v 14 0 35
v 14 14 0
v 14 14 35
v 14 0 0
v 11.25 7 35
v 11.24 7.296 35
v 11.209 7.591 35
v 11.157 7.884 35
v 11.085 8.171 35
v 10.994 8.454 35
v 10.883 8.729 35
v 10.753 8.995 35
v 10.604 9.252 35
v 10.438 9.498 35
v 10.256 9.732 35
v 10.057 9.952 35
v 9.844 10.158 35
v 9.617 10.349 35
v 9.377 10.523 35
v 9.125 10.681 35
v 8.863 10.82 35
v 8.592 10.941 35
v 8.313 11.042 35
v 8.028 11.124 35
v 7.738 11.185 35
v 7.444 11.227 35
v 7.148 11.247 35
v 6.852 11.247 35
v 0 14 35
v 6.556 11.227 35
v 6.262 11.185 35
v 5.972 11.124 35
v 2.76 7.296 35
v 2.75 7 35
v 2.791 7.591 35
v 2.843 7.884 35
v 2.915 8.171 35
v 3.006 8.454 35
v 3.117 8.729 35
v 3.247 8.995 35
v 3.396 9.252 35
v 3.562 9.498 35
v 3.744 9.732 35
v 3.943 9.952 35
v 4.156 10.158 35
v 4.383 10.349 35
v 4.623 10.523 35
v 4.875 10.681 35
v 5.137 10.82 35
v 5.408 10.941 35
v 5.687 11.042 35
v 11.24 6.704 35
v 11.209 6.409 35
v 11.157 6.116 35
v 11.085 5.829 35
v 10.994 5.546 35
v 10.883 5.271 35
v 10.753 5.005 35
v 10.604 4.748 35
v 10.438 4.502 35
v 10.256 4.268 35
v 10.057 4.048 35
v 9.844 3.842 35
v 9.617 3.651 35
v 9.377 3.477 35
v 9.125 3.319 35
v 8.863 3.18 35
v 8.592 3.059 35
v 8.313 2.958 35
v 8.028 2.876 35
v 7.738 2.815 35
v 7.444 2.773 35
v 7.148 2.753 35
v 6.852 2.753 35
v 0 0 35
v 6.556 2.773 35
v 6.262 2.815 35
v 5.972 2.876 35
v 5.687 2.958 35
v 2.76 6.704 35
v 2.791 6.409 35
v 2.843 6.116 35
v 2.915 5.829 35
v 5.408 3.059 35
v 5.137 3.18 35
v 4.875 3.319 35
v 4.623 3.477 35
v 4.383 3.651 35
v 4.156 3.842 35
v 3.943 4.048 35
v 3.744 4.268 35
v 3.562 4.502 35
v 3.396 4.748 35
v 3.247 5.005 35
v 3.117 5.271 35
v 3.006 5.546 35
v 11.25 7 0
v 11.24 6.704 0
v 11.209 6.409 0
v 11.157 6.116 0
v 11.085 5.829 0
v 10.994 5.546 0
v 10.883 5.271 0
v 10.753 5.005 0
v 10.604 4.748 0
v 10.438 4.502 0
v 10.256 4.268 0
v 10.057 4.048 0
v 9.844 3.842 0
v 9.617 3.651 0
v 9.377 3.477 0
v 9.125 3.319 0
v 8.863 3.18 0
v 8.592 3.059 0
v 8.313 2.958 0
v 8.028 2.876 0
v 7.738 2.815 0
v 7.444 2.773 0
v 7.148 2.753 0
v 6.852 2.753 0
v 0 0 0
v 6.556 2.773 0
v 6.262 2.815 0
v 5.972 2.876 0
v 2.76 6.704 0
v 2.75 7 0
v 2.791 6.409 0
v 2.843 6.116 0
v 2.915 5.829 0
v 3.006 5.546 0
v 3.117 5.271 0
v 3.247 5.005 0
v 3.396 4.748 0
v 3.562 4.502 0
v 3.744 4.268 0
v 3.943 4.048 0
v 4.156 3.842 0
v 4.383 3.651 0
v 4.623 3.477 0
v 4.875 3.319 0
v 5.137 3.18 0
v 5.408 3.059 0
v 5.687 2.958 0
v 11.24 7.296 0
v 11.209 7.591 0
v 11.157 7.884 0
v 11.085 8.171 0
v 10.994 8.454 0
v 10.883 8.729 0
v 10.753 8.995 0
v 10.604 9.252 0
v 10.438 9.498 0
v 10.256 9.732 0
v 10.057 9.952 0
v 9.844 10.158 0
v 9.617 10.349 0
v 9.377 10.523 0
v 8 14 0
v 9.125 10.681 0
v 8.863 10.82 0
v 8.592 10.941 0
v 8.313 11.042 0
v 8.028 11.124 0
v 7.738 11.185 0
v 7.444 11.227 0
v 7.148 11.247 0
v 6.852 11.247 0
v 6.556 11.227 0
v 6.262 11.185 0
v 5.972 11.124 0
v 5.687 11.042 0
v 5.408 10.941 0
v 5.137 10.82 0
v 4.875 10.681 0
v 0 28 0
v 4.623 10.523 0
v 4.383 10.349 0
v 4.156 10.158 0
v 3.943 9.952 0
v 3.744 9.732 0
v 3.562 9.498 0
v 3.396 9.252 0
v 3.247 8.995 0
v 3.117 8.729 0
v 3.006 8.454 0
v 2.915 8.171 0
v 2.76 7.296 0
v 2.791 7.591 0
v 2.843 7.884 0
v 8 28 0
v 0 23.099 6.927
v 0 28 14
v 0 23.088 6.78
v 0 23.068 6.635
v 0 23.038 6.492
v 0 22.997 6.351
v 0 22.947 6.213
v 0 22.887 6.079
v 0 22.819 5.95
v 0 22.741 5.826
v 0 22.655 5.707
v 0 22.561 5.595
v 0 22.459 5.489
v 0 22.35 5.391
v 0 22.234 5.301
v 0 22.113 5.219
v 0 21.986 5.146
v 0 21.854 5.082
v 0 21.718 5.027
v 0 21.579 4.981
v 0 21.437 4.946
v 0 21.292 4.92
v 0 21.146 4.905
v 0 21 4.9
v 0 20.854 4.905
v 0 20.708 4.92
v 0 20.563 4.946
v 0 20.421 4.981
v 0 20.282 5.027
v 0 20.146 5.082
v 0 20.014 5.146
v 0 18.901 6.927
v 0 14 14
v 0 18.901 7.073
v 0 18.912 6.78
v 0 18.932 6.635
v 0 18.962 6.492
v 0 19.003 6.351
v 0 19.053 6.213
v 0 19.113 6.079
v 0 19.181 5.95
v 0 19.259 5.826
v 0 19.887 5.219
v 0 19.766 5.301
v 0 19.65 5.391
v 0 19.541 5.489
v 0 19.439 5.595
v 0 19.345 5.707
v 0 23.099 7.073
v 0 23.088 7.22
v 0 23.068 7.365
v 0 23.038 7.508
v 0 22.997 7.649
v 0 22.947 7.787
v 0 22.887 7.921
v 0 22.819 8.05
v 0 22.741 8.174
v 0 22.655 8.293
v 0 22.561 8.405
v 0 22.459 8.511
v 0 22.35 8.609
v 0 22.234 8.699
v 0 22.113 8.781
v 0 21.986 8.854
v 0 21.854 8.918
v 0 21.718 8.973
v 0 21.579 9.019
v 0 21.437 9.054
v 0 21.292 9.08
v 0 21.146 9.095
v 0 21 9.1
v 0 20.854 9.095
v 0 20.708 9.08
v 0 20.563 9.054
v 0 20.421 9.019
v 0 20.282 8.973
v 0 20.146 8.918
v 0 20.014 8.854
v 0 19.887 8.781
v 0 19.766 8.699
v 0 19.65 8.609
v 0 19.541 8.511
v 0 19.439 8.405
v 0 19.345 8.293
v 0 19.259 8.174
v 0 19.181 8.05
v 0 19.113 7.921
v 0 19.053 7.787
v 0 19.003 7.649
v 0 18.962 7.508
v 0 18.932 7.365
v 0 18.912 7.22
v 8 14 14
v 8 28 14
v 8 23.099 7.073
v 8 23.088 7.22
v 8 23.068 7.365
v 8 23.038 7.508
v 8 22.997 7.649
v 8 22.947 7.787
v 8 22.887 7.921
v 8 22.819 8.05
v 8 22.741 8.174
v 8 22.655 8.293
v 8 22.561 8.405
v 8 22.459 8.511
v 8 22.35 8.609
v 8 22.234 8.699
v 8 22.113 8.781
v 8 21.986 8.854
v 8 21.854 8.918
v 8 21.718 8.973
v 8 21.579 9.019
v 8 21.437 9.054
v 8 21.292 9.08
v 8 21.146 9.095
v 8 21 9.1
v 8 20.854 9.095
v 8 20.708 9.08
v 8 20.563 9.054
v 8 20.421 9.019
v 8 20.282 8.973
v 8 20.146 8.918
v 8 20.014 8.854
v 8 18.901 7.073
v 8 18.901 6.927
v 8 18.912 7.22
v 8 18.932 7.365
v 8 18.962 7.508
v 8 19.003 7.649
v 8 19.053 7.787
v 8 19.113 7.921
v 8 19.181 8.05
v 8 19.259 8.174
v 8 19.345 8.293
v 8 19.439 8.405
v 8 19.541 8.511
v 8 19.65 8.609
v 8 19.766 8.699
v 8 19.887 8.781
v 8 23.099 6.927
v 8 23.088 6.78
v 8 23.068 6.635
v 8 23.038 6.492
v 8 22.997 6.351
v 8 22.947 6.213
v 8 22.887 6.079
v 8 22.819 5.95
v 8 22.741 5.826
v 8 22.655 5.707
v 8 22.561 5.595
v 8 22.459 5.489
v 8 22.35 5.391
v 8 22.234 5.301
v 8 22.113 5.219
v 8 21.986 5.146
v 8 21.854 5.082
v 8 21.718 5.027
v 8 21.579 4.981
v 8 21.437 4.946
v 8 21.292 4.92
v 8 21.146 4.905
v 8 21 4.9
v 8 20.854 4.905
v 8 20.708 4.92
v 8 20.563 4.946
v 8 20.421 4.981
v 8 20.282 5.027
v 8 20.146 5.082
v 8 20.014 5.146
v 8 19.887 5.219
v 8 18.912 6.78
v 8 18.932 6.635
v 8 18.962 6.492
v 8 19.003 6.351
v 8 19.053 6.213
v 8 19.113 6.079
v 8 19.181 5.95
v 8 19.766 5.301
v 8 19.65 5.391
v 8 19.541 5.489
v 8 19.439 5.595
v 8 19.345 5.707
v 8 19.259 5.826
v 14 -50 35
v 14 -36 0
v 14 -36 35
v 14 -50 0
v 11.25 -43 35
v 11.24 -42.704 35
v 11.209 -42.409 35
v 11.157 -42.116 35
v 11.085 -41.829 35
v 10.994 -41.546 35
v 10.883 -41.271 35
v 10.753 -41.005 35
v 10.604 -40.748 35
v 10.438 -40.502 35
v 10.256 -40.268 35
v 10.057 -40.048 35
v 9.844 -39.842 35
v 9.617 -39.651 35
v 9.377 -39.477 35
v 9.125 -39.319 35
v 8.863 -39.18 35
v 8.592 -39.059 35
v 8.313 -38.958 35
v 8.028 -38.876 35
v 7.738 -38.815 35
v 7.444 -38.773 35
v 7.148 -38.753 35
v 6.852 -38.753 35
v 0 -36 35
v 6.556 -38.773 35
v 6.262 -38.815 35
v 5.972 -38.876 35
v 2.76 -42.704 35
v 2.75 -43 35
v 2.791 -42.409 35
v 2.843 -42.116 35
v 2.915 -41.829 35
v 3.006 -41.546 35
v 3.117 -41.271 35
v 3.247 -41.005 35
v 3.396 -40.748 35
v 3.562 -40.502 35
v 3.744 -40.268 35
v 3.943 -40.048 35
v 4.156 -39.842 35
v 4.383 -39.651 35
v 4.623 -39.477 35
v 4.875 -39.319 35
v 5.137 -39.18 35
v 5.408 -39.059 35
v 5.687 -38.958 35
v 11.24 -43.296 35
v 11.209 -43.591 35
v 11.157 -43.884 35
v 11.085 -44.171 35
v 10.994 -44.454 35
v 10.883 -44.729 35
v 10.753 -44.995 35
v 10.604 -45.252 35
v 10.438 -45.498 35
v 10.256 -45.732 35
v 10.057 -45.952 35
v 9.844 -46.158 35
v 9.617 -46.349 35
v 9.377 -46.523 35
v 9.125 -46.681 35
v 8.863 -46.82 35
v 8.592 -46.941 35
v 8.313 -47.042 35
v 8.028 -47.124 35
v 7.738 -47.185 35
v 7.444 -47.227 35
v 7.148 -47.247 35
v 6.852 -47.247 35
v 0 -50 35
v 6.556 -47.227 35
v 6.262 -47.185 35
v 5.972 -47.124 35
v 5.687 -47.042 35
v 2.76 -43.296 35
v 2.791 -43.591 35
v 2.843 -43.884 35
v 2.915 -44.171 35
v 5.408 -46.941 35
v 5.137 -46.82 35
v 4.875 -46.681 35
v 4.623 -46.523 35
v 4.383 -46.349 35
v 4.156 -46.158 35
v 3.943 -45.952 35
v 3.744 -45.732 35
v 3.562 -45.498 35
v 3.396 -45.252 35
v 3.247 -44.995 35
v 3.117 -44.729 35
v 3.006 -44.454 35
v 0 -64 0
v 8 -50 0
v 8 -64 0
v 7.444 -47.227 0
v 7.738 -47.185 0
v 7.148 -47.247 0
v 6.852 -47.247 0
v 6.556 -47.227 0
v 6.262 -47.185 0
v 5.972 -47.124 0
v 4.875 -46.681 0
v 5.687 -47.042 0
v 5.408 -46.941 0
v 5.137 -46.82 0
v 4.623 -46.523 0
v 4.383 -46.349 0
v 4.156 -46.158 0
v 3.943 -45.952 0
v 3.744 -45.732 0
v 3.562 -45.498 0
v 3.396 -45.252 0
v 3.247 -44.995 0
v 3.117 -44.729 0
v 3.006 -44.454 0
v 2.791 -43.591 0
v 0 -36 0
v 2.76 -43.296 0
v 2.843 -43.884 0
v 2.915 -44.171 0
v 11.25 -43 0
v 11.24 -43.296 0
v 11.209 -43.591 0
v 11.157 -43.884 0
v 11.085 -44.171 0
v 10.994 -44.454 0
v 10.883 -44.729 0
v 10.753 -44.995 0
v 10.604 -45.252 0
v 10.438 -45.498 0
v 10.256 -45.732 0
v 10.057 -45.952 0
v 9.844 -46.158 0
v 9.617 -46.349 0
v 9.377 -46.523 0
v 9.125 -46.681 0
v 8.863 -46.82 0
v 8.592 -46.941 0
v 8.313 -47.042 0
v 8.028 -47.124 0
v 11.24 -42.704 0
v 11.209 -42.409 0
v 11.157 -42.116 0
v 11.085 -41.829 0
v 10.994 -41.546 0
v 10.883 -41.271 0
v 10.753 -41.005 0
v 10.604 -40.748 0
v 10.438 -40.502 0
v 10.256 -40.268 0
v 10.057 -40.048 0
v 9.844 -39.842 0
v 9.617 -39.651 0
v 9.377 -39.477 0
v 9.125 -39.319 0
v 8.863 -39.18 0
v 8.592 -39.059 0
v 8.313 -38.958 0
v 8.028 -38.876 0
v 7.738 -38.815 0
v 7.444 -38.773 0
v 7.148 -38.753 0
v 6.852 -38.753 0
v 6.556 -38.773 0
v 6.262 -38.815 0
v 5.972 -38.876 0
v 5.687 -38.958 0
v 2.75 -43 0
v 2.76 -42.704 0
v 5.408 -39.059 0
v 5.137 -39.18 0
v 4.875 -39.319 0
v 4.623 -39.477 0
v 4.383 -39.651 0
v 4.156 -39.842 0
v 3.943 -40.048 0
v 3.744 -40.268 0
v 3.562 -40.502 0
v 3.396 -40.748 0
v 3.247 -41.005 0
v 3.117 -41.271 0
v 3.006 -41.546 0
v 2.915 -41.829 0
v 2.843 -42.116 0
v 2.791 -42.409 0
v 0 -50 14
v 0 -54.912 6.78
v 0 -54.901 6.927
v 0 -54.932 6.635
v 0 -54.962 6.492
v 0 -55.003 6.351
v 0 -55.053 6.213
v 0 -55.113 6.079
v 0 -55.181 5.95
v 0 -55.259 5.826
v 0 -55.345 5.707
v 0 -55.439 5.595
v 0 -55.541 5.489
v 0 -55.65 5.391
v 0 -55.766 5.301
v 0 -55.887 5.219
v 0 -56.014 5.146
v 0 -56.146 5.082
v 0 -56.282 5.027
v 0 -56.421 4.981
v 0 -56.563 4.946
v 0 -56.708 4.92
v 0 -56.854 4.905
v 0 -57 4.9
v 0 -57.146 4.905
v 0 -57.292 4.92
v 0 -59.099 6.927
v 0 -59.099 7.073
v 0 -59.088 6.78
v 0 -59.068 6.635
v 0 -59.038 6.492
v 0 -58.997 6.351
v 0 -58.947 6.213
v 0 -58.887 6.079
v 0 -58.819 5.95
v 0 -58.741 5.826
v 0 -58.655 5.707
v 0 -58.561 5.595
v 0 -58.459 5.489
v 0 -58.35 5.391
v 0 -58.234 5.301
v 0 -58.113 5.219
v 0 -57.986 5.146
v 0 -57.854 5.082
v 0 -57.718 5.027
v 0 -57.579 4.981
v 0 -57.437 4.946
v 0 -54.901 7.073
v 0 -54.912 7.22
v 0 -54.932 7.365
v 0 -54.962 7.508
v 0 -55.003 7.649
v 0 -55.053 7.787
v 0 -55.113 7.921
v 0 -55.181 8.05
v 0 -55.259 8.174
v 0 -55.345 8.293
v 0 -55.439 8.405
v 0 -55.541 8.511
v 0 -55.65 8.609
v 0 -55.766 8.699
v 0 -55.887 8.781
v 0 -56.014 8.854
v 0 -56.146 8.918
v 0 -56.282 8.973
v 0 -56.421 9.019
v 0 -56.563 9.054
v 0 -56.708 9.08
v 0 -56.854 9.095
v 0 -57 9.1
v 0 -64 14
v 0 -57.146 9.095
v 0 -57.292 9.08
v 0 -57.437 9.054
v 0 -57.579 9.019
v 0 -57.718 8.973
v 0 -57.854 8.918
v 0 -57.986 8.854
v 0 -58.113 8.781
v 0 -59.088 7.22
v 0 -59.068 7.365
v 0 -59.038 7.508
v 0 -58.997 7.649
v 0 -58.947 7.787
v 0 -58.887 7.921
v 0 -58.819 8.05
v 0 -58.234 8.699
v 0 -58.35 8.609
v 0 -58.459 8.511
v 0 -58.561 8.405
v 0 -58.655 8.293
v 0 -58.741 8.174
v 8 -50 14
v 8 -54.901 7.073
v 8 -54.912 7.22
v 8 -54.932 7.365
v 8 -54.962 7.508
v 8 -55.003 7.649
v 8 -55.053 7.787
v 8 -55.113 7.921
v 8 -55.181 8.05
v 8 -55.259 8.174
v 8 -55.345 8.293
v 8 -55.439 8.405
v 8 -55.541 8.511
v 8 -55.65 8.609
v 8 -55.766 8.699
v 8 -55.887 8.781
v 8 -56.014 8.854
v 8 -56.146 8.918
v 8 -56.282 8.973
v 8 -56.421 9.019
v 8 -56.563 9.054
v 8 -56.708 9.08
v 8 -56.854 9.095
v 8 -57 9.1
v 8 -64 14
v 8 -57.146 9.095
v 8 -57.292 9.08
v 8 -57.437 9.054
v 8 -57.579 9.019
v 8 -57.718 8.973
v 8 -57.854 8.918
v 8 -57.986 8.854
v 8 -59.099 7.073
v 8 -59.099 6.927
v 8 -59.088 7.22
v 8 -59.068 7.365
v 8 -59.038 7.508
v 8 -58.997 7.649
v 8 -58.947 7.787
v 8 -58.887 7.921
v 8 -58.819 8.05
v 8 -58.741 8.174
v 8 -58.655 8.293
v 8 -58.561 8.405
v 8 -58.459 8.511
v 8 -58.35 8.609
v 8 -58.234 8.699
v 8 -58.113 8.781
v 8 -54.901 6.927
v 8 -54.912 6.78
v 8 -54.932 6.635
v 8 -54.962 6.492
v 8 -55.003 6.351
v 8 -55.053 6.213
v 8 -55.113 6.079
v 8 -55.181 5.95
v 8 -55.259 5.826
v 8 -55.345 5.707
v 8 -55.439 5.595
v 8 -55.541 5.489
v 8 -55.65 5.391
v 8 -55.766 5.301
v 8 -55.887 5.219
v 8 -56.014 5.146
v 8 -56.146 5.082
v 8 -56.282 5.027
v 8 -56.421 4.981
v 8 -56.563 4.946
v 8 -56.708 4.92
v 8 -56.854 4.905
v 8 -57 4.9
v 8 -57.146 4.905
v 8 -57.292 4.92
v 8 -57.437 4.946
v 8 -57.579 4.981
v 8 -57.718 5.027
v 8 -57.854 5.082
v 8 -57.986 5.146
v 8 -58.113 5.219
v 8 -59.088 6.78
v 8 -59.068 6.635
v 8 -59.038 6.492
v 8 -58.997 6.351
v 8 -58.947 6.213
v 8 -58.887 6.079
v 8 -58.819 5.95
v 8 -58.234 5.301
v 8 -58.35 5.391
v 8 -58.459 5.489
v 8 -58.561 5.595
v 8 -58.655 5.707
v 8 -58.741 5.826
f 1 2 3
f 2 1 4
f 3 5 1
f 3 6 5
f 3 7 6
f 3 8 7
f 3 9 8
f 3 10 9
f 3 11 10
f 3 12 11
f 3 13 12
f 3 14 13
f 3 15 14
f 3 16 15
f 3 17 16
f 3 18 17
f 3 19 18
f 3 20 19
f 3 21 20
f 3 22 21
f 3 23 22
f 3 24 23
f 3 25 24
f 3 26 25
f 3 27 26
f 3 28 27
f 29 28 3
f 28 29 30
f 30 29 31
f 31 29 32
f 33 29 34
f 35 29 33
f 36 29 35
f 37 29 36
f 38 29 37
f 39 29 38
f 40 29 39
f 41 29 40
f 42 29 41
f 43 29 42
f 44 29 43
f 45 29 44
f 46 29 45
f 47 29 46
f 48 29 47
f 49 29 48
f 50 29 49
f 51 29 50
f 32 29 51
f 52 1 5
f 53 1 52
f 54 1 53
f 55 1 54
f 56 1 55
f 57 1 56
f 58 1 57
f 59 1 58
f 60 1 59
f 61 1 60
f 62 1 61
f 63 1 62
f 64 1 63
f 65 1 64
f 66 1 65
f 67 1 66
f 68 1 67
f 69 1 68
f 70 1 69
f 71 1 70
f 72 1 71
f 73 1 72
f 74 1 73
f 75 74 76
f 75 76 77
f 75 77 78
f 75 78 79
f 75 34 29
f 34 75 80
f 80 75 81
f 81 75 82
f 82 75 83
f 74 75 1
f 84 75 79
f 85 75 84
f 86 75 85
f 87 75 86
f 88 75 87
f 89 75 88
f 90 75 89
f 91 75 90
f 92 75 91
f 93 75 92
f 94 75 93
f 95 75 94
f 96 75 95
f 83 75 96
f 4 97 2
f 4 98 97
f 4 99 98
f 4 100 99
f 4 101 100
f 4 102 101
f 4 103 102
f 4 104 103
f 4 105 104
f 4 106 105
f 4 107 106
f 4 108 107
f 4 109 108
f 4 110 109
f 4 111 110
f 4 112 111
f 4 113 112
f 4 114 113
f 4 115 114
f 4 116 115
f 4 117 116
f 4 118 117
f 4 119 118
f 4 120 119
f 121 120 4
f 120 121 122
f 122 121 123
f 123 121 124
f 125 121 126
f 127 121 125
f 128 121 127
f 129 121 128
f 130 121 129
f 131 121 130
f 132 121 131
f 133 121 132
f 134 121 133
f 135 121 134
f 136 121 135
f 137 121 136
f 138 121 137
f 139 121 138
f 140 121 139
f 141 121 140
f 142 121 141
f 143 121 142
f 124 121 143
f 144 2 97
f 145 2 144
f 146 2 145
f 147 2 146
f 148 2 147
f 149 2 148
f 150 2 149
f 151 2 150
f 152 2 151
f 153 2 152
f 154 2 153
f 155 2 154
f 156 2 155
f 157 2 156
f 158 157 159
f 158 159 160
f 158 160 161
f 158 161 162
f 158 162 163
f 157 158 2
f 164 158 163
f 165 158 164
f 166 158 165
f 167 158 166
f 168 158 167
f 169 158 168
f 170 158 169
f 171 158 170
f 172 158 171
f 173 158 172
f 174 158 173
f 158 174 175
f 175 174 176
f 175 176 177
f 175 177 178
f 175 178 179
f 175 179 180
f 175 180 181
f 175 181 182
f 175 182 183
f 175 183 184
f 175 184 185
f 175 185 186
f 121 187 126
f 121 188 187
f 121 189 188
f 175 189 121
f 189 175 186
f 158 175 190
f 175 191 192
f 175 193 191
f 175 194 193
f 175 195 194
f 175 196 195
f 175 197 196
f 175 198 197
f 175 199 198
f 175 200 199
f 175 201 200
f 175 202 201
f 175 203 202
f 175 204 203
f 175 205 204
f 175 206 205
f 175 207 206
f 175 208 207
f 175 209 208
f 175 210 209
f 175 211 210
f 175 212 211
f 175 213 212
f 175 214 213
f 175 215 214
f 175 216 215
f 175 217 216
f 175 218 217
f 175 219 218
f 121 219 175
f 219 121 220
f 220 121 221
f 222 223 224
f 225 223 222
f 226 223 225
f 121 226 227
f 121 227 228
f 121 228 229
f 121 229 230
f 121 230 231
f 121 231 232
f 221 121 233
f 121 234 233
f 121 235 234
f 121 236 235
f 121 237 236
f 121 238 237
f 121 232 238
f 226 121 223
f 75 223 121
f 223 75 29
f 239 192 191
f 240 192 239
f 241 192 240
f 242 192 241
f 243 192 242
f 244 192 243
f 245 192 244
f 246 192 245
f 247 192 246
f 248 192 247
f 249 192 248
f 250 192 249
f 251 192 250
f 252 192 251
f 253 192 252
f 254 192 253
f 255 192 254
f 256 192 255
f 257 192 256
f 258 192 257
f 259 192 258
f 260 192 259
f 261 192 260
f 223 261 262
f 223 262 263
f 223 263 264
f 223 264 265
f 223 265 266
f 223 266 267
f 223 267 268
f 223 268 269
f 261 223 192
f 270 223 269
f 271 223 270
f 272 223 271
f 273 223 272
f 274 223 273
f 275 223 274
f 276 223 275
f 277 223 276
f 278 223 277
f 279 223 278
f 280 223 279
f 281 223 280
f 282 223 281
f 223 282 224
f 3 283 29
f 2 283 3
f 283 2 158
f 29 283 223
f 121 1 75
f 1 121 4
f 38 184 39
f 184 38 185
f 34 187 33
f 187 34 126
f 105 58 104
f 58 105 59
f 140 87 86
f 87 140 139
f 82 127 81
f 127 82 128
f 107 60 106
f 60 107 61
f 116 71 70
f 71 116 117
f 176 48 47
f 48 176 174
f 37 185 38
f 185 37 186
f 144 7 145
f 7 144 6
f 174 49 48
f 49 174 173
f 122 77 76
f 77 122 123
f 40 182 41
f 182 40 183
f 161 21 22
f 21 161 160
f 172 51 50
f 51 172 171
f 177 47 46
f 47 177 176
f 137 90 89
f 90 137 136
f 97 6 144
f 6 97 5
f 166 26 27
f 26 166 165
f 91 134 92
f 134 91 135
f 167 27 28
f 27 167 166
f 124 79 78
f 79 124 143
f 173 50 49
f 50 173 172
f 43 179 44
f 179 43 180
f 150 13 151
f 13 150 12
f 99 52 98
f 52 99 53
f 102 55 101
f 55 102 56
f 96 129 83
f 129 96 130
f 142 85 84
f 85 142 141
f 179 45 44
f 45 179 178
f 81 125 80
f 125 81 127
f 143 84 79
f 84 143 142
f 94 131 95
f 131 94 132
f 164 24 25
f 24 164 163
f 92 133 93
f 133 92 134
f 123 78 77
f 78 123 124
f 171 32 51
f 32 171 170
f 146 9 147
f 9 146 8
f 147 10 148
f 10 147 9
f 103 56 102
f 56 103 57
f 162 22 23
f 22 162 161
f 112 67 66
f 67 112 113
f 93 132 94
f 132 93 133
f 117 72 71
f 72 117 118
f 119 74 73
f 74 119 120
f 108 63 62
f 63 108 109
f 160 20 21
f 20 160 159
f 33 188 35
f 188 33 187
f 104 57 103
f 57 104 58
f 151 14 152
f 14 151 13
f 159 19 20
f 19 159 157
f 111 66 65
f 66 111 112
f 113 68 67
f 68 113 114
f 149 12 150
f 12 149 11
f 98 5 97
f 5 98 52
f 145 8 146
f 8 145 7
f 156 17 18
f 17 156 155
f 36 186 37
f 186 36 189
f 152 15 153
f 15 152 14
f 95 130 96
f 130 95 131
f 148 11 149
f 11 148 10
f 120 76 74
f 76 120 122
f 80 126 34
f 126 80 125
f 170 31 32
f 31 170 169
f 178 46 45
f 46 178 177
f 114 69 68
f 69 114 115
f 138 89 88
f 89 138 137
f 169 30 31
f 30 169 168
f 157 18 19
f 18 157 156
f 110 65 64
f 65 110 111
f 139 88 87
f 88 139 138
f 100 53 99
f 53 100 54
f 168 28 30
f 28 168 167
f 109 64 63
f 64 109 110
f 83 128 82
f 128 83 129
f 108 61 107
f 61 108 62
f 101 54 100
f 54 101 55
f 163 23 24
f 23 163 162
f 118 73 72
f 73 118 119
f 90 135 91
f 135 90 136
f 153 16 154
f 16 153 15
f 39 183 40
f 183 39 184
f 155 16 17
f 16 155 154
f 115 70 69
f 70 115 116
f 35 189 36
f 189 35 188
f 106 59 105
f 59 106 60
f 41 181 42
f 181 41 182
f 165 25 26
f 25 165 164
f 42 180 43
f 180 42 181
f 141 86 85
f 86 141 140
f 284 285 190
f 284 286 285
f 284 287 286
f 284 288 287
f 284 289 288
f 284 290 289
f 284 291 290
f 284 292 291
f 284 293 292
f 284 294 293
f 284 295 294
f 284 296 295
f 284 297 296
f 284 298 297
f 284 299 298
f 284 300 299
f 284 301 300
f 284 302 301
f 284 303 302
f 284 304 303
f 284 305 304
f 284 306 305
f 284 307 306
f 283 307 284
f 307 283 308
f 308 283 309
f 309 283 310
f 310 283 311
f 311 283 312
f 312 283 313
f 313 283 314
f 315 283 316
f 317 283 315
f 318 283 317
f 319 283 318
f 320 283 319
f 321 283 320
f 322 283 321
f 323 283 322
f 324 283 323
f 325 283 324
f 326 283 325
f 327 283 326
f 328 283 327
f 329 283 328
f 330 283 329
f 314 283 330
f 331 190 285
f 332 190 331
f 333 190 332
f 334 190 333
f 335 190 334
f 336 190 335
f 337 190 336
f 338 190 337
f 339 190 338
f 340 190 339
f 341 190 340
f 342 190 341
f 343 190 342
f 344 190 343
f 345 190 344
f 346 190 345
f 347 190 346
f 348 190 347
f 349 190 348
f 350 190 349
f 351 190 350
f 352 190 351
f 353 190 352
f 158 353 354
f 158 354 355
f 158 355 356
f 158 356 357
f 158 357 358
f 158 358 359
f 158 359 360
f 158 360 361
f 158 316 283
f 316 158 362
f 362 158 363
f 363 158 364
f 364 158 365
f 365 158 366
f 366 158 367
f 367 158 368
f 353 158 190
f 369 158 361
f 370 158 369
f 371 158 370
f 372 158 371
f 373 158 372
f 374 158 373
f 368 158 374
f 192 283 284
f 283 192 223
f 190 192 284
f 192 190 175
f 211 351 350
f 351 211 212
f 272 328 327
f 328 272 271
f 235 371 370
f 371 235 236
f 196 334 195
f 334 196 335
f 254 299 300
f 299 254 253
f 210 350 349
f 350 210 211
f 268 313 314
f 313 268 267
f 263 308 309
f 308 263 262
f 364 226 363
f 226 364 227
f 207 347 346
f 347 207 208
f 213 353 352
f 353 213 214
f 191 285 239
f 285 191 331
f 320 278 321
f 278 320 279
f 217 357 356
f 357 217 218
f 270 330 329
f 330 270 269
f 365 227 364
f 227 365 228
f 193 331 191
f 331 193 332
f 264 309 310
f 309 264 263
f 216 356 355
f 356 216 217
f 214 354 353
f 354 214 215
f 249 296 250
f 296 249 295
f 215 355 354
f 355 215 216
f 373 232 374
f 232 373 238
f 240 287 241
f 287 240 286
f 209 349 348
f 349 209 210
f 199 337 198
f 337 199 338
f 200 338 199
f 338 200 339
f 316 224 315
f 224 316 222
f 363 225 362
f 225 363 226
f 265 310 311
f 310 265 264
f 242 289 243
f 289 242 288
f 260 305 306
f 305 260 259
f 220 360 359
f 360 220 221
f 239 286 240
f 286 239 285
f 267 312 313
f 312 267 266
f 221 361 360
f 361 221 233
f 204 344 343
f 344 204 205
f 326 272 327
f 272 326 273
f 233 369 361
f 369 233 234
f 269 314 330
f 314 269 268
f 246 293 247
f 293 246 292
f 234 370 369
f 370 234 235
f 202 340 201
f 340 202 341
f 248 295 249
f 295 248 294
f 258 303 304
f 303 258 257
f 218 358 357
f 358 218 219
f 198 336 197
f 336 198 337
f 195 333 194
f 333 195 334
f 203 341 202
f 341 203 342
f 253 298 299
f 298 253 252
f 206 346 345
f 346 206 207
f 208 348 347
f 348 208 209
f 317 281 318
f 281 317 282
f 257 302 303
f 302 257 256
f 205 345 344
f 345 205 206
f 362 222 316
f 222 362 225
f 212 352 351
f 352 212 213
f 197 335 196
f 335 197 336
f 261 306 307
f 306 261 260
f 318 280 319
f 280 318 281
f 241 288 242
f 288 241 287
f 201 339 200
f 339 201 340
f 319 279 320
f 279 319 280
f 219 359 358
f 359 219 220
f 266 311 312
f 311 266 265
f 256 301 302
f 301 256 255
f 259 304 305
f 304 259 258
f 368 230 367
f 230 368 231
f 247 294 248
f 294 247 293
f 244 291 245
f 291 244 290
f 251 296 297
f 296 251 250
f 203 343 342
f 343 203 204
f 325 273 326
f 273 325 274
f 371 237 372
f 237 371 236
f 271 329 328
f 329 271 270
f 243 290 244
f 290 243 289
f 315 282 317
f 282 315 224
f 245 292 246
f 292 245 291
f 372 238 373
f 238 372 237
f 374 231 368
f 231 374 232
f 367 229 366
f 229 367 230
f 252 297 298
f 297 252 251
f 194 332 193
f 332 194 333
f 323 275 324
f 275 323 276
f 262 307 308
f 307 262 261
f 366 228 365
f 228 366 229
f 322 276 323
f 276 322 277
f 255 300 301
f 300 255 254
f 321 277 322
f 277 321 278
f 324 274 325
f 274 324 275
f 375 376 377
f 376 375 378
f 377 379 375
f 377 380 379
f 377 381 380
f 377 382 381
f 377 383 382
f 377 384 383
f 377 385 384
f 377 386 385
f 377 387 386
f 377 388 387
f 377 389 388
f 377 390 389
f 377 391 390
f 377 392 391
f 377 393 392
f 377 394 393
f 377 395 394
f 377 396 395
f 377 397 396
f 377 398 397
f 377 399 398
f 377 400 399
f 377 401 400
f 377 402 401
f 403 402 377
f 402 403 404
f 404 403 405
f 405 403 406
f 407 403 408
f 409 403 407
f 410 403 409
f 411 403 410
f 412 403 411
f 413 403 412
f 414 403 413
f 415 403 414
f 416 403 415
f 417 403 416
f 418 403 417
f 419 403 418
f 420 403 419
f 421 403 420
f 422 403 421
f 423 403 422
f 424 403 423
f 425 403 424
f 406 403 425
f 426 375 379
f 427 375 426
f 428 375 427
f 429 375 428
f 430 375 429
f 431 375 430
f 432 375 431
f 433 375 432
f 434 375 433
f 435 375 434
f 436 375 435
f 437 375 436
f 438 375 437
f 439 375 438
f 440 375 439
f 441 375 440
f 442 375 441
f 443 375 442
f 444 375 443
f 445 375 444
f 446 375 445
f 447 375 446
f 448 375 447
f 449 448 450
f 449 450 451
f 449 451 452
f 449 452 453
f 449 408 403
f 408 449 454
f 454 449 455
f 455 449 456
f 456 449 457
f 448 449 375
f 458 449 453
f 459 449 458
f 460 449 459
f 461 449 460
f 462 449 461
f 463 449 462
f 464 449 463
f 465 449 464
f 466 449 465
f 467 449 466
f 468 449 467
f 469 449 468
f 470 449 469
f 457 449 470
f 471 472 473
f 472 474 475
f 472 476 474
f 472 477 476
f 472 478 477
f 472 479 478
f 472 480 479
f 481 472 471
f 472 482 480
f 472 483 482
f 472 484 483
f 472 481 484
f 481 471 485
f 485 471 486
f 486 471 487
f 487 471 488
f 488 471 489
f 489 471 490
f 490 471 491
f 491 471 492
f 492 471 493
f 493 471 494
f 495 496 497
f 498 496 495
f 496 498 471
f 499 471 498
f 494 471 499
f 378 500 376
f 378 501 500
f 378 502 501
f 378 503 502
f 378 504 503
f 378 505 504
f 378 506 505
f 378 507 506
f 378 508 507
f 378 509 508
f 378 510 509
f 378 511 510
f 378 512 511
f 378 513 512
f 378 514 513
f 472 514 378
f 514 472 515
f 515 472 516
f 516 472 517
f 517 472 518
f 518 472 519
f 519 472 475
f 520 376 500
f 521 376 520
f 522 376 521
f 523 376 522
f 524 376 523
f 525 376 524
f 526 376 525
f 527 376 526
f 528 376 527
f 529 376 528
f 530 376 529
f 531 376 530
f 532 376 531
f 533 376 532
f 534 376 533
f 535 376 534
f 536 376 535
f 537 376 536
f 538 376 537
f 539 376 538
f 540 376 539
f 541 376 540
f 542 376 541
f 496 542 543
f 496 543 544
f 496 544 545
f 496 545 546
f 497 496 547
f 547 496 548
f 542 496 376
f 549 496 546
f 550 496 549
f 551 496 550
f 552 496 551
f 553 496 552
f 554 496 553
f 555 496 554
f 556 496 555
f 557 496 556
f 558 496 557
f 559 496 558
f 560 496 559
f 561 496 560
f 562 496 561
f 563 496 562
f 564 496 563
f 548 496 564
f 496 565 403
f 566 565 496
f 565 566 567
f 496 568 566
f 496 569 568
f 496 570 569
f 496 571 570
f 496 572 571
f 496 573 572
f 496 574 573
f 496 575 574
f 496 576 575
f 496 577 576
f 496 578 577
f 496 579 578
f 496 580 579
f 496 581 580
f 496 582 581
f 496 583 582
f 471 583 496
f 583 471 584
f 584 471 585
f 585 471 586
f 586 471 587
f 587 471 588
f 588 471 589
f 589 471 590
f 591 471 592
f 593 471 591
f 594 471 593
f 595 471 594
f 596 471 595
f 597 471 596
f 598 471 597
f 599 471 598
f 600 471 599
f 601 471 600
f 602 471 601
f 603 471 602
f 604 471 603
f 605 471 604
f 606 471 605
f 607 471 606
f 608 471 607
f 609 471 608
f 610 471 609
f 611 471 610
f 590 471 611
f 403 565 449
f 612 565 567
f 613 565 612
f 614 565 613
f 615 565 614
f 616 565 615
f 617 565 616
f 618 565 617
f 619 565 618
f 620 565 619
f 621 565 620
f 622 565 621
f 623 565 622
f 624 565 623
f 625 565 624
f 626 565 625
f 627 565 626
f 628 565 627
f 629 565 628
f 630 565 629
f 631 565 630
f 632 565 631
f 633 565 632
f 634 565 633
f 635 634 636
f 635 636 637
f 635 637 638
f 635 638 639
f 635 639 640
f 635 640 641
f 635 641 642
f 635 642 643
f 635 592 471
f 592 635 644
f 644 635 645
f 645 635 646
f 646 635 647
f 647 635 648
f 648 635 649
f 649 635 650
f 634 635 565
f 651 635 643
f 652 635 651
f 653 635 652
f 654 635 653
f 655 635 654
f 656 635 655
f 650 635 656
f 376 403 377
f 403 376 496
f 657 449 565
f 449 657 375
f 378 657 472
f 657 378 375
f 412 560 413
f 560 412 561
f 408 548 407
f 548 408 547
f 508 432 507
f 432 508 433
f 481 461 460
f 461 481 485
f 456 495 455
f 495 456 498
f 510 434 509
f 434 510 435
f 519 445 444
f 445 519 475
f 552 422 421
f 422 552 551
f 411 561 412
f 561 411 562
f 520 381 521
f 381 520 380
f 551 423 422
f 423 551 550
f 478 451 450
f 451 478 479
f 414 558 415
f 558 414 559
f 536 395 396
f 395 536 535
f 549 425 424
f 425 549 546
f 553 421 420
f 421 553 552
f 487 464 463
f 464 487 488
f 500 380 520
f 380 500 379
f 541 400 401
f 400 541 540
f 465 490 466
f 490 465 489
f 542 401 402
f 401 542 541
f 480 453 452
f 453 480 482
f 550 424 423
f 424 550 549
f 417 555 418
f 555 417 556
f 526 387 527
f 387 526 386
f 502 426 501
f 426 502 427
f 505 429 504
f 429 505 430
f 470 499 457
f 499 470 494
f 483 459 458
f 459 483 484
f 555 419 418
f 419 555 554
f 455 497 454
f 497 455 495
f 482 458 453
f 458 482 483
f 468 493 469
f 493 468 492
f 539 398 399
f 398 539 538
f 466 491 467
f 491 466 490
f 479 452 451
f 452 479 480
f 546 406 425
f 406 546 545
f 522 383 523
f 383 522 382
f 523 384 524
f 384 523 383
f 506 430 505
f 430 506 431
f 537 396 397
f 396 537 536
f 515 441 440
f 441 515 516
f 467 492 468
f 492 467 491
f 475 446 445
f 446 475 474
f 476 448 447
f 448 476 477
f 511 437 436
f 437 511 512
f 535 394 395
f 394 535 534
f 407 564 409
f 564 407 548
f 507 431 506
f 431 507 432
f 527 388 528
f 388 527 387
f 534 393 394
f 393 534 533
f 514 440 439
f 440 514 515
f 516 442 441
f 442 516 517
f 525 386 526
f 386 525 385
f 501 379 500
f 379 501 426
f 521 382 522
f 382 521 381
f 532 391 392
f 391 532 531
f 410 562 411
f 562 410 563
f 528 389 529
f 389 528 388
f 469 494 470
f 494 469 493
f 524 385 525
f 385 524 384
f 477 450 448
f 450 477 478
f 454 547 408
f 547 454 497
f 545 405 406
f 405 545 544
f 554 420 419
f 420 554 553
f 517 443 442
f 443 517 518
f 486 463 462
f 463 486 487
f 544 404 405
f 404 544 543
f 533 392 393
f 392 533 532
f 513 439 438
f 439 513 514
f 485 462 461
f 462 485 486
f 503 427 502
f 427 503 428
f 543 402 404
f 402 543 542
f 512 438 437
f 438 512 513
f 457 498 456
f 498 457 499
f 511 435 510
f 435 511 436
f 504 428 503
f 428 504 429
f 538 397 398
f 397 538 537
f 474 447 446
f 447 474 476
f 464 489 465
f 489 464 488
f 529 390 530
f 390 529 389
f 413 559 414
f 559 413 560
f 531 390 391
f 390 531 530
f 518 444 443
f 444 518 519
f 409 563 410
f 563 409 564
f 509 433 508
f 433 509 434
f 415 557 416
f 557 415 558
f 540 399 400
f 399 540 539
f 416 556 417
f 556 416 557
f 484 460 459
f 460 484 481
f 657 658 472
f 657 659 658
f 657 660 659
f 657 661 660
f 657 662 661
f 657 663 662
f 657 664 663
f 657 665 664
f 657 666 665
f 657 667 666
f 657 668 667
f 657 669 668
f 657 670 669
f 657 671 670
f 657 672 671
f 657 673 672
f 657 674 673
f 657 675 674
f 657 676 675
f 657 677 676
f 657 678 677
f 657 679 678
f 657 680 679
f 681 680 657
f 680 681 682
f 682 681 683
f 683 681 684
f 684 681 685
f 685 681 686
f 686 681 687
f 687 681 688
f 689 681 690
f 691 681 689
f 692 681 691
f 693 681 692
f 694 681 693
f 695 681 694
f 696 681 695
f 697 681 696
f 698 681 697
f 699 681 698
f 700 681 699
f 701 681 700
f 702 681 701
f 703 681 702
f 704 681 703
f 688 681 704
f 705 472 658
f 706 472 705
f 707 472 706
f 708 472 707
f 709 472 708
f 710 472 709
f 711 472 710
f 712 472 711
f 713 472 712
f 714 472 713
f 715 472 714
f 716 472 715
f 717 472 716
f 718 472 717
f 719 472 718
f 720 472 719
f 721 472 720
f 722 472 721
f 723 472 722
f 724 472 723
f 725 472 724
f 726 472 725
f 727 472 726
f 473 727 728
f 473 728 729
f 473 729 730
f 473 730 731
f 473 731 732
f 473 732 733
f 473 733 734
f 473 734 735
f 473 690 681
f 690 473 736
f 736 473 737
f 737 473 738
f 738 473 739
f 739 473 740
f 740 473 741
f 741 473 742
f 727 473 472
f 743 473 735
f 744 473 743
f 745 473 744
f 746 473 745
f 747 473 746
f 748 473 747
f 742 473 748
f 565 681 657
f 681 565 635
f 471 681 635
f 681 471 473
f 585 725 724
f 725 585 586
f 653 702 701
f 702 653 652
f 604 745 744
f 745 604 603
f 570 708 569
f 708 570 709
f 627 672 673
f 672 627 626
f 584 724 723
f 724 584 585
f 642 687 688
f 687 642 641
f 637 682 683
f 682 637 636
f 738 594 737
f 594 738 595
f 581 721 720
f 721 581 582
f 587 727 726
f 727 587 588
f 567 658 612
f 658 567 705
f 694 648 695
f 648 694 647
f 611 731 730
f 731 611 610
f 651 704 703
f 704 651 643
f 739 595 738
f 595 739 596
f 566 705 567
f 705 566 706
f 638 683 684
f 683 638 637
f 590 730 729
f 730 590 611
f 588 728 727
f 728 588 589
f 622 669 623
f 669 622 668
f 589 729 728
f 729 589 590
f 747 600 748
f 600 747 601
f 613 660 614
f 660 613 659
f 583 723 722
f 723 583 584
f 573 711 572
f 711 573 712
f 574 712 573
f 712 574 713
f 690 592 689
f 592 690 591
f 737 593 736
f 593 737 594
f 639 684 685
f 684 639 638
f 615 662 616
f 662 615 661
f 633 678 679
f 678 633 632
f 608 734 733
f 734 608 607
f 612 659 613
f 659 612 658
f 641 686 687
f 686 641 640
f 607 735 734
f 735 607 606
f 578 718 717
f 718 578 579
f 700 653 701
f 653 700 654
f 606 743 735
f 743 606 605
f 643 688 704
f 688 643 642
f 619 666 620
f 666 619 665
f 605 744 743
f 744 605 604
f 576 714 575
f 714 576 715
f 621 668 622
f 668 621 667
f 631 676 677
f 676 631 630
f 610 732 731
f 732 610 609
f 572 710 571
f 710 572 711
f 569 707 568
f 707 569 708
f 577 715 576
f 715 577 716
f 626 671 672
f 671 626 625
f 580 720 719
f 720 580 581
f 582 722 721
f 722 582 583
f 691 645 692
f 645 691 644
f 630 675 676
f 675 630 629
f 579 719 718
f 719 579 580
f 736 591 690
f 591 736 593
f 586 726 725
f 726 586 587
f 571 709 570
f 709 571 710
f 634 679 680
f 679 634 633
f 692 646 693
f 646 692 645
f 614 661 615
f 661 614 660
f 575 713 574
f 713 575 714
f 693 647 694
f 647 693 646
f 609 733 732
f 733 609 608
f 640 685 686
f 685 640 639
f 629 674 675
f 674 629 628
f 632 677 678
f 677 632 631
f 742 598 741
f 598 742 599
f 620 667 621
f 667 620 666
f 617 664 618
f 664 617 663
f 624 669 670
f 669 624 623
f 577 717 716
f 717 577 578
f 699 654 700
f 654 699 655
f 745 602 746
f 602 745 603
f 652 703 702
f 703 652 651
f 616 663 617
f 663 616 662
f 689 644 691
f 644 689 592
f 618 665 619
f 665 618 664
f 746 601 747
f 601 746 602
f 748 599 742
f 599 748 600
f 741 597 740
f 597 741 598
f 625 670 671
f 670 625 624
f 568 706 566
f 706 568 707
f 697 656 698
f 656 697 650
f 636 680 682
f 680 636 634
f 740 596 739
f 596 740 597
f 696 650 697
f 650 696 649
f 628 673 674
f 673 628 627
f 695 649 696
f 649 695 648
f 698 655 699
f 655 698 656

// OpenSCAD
// left
translate([0, 0,0]) {
    union() {
        difference() {
            cube([14, 14, 35]);
            translate([14/2, 14/2, -1])
            cylinder(d=8.5, h=60, $fn=90);
        }
        translate([0, 14, 0]) {
            difference() {
                cube([8, 14, 14]);
                translate([-1, 14/2, 14/2]) {
                    rotate([0, 90, 0]) {
                        cylinder(d=4.2, h=20, $fn=90);
                    }
                }
            }
        }
    }
}


// right
translate([0, -50, 0]) {
    union() {
        difference() {
            cube([14, 14, 35]);
            translate([14/2, 14/2, -1])
            cylinder(d=8.5, h=60, $fn=90);
        }
        translate([0, -14, 0]) {
            difference() {
                cube([8, 14, 14]);
                translate([-1, 14/2, 14/2]) {
                    rotate([0, 90, 0]) {
                        cylinder(d=4.2, h=20, $fn=90);
                    }
                }
            }
        }
    }
}
